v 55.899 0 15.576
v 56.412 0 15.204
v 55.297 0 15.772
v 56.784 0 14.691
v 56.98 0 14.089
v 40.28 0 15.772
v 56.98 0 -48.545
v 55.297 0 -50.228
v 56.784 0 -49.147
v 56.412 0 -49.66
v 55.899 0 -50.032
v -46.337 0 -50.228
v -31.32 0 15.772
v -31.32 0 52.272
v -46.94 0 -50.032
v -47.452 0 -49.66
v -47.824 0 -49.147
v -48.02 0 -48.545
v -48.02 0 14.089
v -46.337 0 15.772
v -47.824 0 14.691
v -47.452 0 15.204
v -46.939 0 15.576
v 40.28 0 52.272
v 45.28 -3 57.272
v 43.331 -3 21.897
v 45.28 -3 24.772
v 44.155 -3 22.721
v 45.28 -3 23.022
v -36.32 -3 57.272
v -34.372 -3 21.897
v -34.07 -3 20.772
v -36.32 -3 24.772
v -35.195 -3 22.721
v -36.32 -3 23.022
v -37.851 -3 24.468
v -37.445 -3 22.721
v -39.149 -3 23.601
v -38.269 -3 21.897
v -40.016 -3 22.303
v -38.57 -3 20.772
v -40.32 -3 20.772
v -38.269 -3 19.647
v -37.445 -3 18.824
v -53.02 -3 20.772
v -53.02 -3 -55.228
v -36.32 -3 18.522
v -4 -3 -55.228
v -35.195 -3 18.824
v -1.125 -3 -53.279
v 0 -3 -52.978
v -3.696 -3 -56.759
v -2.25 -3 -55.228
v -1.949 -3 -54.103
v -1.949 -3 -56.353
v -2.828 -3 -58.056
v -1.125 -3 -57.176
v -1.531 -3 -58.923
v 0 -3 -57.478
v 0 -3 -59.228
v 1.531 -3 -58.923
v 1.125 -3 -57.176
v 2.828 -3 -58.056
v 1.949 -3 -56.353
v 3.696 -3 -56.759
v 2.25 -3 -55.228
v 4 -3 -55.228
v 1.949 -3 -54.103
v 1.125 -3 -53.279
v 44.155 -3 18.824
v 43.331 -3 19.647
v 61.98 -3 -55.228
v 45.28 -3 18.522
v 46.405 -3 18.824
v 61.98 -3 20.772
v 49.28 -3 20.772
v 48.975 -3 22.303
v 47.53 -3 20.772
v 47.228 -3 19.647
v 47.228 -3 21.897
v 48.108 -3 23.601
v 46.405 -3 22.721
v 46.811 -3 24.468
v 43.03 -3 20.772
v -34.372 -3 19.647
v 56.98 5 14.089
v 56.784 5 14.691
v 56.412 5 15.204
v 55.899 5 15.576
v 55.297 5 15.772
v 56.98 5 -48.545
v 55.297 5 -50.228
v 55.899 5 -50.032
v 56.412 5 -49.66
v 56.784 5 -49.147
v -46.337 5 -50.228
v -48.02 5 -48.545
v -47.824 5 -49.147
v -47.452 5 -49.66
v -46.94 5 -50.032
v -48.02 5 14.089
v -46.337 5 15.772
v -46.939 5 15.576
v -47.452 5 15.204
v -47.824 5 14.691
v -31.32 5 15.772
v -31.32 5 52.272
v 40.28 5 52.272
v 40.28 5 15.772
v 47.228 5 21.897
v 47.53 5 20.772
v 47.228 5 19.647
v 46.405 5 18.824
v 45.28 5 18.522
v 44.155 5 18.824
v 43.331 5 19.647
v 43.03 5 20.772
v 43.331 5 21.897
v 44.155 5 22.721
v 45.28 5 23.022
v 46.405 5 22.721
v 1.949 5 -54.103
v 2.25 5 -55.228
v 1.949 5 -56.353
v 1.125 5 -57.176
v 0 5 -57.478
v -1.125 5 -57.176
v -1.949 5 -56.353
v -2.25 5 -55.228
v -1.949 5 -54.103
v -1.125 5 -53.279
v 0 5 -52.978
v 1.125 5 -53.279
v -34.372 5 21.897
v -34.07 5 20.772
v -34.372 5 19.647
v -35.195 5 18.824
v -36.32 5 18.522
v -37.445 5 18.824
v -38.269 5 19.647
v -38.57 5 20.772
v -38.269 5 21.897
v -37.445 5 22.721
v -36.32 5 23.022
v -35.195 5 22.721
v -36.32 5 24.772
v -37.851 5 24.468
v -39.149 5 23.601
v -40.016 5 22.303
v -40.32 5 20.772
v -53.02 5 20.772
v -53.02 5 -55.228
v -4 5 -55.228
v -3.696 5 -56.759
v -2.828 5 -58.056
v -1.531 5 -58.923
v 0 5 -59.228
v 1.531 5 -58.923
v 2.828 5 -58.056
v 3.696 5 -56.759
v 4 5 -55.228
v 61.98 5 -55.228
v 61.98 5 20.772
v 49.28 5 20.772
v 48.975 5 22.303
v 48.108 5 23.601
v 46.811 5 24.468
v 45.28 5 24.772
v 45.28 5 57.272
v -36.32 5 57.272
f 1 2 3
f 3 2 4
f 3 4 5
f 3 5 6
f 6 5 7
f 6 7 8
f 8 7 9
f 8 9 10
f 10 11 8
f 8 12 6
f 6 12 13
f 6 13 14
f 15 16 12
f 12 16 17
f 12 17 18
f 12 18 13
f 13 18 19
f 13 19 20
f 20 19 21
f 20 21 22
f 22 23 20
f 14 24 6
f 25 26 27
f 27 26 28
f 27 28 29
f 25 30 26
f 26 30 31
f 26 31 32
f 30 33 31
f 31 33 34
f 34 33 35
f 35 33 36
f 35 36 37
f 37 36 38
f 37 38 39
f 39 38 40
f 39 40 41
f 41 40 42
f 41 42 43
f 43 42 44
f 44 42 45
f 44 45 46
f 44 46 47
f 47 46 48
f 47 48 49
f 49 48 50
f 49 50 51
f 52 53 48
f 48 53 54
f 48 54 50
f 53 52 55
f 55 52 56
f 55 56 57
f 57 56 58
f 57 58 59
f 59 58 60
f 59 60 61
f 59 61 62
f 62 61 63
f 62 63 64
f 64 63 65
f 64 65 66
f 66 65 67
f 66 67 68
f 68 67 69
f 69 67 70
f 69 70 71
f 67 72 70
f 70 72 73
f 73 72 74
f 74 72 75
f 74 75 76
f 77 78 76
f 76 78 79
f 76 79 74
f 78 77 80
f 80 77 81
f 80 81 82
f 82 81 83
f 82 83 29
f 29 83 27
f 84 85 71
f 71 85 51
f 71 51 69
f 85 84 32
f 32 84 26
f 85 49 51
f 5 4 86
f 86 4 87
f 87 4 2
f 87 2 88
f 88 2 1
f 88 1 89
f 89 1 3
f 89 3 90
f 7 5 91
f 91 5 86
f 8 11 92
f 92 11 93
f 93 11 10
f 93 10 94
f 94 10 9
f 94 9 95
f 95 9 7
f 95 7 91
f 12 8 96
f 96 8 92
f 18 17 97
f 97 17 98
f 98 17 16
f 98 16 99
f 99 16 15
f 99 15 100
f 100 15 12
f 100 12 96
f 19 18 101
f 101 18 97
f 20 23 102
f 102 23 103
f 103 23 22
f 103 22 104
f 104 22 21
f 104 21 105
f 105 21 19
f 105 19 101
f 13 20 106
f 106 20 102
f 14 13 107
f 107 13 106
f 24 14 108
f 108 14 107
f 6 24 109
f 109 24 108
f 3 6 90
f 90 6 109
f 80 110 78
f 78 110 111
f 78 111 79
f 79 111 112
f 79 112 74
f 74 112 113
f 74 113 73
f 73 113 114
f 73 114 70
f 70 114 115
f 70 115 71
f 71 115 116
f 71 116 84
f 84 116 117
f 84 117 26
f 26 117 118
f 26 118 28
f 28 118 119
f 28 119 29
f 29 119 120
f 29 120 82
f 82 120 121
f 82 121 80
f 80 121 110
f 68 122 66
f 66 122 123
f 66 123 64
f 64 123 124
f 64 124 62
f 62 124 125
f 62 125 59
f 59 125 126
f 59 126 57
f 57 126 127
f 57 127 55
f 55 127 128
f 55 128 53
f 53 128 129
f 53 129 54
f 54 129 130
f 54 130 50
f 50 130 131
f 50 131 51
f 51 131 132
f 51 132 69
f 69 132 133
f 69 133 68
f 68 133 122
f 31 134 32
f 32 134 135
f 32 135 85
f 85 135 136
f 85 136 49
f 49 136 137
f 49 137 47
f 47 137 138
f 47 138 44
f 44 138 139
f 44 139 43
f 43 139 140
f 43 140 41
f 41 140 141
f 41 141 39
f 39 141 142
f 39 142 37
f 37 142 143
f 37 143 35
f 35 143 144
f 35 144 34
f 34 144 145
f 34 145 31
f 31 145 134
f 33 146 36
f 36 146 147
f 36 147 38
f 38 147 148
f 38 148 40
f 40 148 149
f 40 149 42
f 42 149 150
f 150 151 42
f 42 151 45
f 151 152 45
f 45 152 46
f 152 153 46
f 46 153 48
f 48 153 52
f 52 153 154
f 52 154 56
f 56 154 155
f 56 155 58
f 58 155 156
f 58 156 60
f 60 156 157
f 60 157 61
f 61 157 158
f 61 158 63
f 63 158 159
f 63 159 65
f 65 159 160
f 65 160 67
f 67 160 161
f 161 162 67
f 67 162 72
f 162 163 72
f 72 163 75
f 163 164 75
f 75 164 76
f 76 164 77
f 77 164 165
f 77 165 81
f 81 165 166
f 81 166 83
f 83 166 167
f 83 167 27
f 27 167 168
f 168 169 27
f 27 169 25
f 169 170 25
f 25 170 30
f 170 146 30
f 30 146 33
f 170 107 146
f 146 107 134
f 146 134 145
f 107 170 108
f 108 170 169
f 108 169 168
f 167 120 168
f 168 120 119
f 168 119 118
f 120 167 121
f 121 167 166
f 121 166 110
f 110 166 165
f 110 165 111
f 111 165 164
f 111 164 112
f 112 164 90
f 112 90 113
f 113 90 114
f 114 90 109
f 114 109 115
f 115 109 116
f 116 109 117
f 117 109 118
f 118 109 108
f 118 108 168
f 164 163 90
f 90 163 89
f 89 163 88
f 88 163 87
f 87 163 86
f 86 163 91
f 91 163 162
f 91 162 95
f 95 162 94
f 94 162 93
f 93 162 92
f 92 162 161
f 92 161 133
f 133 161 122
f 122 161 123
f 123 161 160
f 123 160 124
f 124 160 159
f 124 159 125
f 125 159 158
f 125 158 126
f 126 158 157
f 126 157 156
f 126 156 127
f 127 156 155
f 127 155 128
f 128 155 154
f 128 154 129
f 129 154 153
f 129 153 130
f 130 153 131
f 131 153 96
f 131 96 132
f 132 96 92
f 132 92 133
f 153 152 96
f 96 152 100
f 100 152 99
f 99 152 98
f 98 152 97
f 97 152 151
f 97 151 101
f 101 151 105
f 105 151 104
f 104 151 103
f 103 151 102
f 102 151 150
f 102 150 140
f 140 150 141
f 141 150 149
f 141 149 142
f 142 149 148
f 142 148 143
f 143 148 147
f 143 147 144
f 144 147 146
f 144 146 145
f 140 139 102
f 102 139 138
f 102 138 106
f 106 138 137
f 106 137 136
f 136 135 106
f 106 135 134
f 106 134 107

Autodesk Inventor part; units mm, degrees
ref_plane "YZ Plane" through (0, 0, 0) normal (1, 0, 0) x (0, 1, 0)
ref_plane "XZ Plane" through (0, 0, 0) normal (0, 1, 0) x (-1, 0, 0)
ref_plane "XY Plane" through (0, 0, 0) normal (0, 0, 1) x (1, 0, 0)
sketch "Sketch1" plane through (0, 0, 0) normal (0, 1, 0) x (-1, 0, 0)
  line L0 (-40.2798, 52.2721) -> (31.3202, 52.2721)
  line L1 (-40.2798, 15.7721) -> (-40.2798, 52.2721)
  line L2 (-55.2966, 15.7721) -> (-40.2798, 15.7721)
  line L3 (-56.9798, 14.0889) -> (-56.9798, -48.5447)
  line L4 (46.337, -50.2279) -> (-55.2966, -50.2279)
  line L5 (48.0202, -24.2779) -> (48.0202, -48.5447)
  line L6 (48.0202, -9.7779) -> (48.0202, 14.0889)
  line L7 (31.3202, 15.7721) -> (46.337, 15.7721)
  line L8 (31.3202, 15.7721) -> (31.3202, 52.2721)
  line L9 (-56.784, 14.6914) -> (-56.9798, 14.0889)
  line L10 (-56.784, 14.6914) -> (-56.4116, 15.2039)
  line L11 (-55.2966, 15.7721) -> (-55.8991, 15.5763)
  line L12 (-56.4116, 15.2039) -> (-55.8991, 15.5763)
  spline S0 degree 4 poles (-56.9798, 14.0889) (-56.8811, 14.7163) (-56.5148, 15.3071) (-55.924, 15.6734) (-55.2966, 15.7721) knots 0 0 0 0 0 1 1 1 1 1
  line L13 (47.8244, 14.6914) -> (47.452, 15.2039)
  line L14 (46.337, 15.7721) -> (46.9395, 15.5763)
  line L15 (47.8244, 14.6914) -> (48.0202, 14.0889)
  line L16 (46.9395, 15.5763) -> (47.452, 15.2039)
  spline S1 degree 4 poles (46.337, 15.7721) (46.9644, 15.6734) (47.5552, 15.3071) (47.9215, 14.7163) (48.0202, 14.0889) knots 0 0 0 0 0 1 1 1 1 1
  line L17 (46.337, -50.2279) -> (46.9395, -50.0321)
  line L18 (47.452, -49.6597) -> (47.8244, -49.1472)
  line L19 (47.452, -49.6597) -> (46.9395, -50.0321)
  spline S2 degree 4 poles (48.0202, -48.5447) (47.9214, -49.1721) (47.5553, -49.763) (46.9644, -50.1292) (46.337, -50.2279) knots 0 0 0 0 0 1 1 1 1 1
  line L20 (-56.9798, -48.5447) -> (-56.784, -49.1472)
  line L21 (-55.2966, -50.2279) -> (-55.8991, -50.0321)
  spline S3 degree 4 poles (-55.2966, -50.2279) (-55.924, -50.1292) (-56.5149, -49.763) (-56.8811, -49.1721) (-56.9798, -48.5447) knots 0 0 0 0 0 1 1 1 1 1
  line L22 (48.0202, -9.7779) -> (48.0202, -24.2779)
  line L23 (-55.2966, 20.7721) -> (-45.2798, 20.7721)
  line L24 (-45.2798, 20.7721) -> (-45.2798, 57.2721)
  line L25 (-45.2798, 57.2721) -> (36.3202, 57.2721)
  line L26 (36.3202, 57.2721) -> (36.3202, 20.7721)
  line L27 (46.337, -55.2279) -> (-55.2966, -55.2279)
  line L28 (-61.9798, -48.5447) -> (-61.9798, 14.8809)
  line L29 (-45.2798, 20.7721) -> (-61.9798, 20.7721)
  line L30 (-61.9798, 20.7721) -> (-61.9798, -55.2279)
  line L31 (-61.9798, -55.2279) -> (53.0202, -55.2279)
  line L32 (53.0202, -55.2279) -> (53.0202, 20.7721)
  line L33 (53.0202, 20.7721) -> (36.3202, 20.7721)
  circle A0 centre (-45.2798, 20.7721) radius 2.25
  circle A1 centre (36.3202, 20.7721) radius 2.25
  circle A2 centre (0, -55.2279) radius 2.25
  circle A3 centre (36.3202, 20.7721) radius 4
  circle A4 centre (-45.2798, 20.7721) radius 4
  circle A5 centre (0, -55.2279) radius 4
  point P0 (0, 0)
  point P1 (32.0202, -45.2279)
  point P2 (-56.4116, -49.6597)
  point P3 (-56.4116, -49.6597)
  point P4 (40.3202, 20.7721)
  point P5 (36.3202, 24.7721)
  point P6 (-45.2798, 24.7721)
  point P7 (-49.2798, 20.7721)
  point P8 (-4, -55.2279)
  point P9 (4, -55.2279)
  point P10 (-56.9798, 14.0889)
  dimension "d0" = 5
  dimension "d2" = 5
  dimension "d3" = 5
  dimension "d4" = 4.5
  dimension "d5" = 4.5
  dimension "d6" = 4.5
  dimension "d7" = 8
  dimension "d8" = 8
  dimension "d9" = 8
extrude "Extrusion1" add sketch "Sketch1" along normal blind 5 contours L23 A4 L24 L25 L26 A3 L33 L32 L31 L27 A5 L30 L28 L29 | A4 L24 A0 L23 | L23 A0 L24 A4 | A3 L33 A1 L26 | L26 A1 L33 A3 | A5 L27 A2 | L27 A2 A5
sketch "Sketch2" plane through (0, 0, 0) normal (0, -1, 0) x (1, 0, 0)
  line L0 (61.9798, 20.7721) -> (61.9798, -55.2279) projected
  line L1 (49.2798, 20.7721) -> (61.9798, 20.7721) projected
  arc A0 (49.2798, 20.7721) -> (45.2798, 24.7721) centre (45.2798, 20.7721) ccw projected
  line L2 (45.2798, 57.2721) -> (45.2798, 24.7721) projected
  line L3 (-36.3202, 57.2721) -> (45.2798, 57.2721) projected
  line L4 (-36.3202, 24.7721) -> (-36.3202, 57.2721) projected
  arc A1 (-36.3202, 24.7721) -> (-40.3202, 20.7721) centre (-36.3202, 20.7721) ccw projected
  line L5 (-53.0202, 20.7721) -> (-40.3202, 20.7721) projected
  line L6 (-53.0202, -55.2279) -> (-53.0202, 20.7721) projected
  line L7 (-4, -55.2279) -> (-53.0202, -55.2279) projected
  arc A2 (-4, -55.2279) -> (4, -55.2279) centre (0, -55.2279) ccw projected
  line L8 (61.9798, -55.2279) -> (4, -55.2279) projected
  circle A3 centre (45.2798, 20.7721) radius 2.25 projected
  circle A4 centre (45.2798, 20.7721) radius 2.25
  circle A5 centre (0, -55.2279) radius 2.25
  circle A6 centre (-36.3202, 20.7721) radius 2.25
  point P0 (0, 0)
extrude "Extrusion2" add sketch "Sketch2" along normal blind 3
properties part number "raspberry-coral-chasis-fastening"
